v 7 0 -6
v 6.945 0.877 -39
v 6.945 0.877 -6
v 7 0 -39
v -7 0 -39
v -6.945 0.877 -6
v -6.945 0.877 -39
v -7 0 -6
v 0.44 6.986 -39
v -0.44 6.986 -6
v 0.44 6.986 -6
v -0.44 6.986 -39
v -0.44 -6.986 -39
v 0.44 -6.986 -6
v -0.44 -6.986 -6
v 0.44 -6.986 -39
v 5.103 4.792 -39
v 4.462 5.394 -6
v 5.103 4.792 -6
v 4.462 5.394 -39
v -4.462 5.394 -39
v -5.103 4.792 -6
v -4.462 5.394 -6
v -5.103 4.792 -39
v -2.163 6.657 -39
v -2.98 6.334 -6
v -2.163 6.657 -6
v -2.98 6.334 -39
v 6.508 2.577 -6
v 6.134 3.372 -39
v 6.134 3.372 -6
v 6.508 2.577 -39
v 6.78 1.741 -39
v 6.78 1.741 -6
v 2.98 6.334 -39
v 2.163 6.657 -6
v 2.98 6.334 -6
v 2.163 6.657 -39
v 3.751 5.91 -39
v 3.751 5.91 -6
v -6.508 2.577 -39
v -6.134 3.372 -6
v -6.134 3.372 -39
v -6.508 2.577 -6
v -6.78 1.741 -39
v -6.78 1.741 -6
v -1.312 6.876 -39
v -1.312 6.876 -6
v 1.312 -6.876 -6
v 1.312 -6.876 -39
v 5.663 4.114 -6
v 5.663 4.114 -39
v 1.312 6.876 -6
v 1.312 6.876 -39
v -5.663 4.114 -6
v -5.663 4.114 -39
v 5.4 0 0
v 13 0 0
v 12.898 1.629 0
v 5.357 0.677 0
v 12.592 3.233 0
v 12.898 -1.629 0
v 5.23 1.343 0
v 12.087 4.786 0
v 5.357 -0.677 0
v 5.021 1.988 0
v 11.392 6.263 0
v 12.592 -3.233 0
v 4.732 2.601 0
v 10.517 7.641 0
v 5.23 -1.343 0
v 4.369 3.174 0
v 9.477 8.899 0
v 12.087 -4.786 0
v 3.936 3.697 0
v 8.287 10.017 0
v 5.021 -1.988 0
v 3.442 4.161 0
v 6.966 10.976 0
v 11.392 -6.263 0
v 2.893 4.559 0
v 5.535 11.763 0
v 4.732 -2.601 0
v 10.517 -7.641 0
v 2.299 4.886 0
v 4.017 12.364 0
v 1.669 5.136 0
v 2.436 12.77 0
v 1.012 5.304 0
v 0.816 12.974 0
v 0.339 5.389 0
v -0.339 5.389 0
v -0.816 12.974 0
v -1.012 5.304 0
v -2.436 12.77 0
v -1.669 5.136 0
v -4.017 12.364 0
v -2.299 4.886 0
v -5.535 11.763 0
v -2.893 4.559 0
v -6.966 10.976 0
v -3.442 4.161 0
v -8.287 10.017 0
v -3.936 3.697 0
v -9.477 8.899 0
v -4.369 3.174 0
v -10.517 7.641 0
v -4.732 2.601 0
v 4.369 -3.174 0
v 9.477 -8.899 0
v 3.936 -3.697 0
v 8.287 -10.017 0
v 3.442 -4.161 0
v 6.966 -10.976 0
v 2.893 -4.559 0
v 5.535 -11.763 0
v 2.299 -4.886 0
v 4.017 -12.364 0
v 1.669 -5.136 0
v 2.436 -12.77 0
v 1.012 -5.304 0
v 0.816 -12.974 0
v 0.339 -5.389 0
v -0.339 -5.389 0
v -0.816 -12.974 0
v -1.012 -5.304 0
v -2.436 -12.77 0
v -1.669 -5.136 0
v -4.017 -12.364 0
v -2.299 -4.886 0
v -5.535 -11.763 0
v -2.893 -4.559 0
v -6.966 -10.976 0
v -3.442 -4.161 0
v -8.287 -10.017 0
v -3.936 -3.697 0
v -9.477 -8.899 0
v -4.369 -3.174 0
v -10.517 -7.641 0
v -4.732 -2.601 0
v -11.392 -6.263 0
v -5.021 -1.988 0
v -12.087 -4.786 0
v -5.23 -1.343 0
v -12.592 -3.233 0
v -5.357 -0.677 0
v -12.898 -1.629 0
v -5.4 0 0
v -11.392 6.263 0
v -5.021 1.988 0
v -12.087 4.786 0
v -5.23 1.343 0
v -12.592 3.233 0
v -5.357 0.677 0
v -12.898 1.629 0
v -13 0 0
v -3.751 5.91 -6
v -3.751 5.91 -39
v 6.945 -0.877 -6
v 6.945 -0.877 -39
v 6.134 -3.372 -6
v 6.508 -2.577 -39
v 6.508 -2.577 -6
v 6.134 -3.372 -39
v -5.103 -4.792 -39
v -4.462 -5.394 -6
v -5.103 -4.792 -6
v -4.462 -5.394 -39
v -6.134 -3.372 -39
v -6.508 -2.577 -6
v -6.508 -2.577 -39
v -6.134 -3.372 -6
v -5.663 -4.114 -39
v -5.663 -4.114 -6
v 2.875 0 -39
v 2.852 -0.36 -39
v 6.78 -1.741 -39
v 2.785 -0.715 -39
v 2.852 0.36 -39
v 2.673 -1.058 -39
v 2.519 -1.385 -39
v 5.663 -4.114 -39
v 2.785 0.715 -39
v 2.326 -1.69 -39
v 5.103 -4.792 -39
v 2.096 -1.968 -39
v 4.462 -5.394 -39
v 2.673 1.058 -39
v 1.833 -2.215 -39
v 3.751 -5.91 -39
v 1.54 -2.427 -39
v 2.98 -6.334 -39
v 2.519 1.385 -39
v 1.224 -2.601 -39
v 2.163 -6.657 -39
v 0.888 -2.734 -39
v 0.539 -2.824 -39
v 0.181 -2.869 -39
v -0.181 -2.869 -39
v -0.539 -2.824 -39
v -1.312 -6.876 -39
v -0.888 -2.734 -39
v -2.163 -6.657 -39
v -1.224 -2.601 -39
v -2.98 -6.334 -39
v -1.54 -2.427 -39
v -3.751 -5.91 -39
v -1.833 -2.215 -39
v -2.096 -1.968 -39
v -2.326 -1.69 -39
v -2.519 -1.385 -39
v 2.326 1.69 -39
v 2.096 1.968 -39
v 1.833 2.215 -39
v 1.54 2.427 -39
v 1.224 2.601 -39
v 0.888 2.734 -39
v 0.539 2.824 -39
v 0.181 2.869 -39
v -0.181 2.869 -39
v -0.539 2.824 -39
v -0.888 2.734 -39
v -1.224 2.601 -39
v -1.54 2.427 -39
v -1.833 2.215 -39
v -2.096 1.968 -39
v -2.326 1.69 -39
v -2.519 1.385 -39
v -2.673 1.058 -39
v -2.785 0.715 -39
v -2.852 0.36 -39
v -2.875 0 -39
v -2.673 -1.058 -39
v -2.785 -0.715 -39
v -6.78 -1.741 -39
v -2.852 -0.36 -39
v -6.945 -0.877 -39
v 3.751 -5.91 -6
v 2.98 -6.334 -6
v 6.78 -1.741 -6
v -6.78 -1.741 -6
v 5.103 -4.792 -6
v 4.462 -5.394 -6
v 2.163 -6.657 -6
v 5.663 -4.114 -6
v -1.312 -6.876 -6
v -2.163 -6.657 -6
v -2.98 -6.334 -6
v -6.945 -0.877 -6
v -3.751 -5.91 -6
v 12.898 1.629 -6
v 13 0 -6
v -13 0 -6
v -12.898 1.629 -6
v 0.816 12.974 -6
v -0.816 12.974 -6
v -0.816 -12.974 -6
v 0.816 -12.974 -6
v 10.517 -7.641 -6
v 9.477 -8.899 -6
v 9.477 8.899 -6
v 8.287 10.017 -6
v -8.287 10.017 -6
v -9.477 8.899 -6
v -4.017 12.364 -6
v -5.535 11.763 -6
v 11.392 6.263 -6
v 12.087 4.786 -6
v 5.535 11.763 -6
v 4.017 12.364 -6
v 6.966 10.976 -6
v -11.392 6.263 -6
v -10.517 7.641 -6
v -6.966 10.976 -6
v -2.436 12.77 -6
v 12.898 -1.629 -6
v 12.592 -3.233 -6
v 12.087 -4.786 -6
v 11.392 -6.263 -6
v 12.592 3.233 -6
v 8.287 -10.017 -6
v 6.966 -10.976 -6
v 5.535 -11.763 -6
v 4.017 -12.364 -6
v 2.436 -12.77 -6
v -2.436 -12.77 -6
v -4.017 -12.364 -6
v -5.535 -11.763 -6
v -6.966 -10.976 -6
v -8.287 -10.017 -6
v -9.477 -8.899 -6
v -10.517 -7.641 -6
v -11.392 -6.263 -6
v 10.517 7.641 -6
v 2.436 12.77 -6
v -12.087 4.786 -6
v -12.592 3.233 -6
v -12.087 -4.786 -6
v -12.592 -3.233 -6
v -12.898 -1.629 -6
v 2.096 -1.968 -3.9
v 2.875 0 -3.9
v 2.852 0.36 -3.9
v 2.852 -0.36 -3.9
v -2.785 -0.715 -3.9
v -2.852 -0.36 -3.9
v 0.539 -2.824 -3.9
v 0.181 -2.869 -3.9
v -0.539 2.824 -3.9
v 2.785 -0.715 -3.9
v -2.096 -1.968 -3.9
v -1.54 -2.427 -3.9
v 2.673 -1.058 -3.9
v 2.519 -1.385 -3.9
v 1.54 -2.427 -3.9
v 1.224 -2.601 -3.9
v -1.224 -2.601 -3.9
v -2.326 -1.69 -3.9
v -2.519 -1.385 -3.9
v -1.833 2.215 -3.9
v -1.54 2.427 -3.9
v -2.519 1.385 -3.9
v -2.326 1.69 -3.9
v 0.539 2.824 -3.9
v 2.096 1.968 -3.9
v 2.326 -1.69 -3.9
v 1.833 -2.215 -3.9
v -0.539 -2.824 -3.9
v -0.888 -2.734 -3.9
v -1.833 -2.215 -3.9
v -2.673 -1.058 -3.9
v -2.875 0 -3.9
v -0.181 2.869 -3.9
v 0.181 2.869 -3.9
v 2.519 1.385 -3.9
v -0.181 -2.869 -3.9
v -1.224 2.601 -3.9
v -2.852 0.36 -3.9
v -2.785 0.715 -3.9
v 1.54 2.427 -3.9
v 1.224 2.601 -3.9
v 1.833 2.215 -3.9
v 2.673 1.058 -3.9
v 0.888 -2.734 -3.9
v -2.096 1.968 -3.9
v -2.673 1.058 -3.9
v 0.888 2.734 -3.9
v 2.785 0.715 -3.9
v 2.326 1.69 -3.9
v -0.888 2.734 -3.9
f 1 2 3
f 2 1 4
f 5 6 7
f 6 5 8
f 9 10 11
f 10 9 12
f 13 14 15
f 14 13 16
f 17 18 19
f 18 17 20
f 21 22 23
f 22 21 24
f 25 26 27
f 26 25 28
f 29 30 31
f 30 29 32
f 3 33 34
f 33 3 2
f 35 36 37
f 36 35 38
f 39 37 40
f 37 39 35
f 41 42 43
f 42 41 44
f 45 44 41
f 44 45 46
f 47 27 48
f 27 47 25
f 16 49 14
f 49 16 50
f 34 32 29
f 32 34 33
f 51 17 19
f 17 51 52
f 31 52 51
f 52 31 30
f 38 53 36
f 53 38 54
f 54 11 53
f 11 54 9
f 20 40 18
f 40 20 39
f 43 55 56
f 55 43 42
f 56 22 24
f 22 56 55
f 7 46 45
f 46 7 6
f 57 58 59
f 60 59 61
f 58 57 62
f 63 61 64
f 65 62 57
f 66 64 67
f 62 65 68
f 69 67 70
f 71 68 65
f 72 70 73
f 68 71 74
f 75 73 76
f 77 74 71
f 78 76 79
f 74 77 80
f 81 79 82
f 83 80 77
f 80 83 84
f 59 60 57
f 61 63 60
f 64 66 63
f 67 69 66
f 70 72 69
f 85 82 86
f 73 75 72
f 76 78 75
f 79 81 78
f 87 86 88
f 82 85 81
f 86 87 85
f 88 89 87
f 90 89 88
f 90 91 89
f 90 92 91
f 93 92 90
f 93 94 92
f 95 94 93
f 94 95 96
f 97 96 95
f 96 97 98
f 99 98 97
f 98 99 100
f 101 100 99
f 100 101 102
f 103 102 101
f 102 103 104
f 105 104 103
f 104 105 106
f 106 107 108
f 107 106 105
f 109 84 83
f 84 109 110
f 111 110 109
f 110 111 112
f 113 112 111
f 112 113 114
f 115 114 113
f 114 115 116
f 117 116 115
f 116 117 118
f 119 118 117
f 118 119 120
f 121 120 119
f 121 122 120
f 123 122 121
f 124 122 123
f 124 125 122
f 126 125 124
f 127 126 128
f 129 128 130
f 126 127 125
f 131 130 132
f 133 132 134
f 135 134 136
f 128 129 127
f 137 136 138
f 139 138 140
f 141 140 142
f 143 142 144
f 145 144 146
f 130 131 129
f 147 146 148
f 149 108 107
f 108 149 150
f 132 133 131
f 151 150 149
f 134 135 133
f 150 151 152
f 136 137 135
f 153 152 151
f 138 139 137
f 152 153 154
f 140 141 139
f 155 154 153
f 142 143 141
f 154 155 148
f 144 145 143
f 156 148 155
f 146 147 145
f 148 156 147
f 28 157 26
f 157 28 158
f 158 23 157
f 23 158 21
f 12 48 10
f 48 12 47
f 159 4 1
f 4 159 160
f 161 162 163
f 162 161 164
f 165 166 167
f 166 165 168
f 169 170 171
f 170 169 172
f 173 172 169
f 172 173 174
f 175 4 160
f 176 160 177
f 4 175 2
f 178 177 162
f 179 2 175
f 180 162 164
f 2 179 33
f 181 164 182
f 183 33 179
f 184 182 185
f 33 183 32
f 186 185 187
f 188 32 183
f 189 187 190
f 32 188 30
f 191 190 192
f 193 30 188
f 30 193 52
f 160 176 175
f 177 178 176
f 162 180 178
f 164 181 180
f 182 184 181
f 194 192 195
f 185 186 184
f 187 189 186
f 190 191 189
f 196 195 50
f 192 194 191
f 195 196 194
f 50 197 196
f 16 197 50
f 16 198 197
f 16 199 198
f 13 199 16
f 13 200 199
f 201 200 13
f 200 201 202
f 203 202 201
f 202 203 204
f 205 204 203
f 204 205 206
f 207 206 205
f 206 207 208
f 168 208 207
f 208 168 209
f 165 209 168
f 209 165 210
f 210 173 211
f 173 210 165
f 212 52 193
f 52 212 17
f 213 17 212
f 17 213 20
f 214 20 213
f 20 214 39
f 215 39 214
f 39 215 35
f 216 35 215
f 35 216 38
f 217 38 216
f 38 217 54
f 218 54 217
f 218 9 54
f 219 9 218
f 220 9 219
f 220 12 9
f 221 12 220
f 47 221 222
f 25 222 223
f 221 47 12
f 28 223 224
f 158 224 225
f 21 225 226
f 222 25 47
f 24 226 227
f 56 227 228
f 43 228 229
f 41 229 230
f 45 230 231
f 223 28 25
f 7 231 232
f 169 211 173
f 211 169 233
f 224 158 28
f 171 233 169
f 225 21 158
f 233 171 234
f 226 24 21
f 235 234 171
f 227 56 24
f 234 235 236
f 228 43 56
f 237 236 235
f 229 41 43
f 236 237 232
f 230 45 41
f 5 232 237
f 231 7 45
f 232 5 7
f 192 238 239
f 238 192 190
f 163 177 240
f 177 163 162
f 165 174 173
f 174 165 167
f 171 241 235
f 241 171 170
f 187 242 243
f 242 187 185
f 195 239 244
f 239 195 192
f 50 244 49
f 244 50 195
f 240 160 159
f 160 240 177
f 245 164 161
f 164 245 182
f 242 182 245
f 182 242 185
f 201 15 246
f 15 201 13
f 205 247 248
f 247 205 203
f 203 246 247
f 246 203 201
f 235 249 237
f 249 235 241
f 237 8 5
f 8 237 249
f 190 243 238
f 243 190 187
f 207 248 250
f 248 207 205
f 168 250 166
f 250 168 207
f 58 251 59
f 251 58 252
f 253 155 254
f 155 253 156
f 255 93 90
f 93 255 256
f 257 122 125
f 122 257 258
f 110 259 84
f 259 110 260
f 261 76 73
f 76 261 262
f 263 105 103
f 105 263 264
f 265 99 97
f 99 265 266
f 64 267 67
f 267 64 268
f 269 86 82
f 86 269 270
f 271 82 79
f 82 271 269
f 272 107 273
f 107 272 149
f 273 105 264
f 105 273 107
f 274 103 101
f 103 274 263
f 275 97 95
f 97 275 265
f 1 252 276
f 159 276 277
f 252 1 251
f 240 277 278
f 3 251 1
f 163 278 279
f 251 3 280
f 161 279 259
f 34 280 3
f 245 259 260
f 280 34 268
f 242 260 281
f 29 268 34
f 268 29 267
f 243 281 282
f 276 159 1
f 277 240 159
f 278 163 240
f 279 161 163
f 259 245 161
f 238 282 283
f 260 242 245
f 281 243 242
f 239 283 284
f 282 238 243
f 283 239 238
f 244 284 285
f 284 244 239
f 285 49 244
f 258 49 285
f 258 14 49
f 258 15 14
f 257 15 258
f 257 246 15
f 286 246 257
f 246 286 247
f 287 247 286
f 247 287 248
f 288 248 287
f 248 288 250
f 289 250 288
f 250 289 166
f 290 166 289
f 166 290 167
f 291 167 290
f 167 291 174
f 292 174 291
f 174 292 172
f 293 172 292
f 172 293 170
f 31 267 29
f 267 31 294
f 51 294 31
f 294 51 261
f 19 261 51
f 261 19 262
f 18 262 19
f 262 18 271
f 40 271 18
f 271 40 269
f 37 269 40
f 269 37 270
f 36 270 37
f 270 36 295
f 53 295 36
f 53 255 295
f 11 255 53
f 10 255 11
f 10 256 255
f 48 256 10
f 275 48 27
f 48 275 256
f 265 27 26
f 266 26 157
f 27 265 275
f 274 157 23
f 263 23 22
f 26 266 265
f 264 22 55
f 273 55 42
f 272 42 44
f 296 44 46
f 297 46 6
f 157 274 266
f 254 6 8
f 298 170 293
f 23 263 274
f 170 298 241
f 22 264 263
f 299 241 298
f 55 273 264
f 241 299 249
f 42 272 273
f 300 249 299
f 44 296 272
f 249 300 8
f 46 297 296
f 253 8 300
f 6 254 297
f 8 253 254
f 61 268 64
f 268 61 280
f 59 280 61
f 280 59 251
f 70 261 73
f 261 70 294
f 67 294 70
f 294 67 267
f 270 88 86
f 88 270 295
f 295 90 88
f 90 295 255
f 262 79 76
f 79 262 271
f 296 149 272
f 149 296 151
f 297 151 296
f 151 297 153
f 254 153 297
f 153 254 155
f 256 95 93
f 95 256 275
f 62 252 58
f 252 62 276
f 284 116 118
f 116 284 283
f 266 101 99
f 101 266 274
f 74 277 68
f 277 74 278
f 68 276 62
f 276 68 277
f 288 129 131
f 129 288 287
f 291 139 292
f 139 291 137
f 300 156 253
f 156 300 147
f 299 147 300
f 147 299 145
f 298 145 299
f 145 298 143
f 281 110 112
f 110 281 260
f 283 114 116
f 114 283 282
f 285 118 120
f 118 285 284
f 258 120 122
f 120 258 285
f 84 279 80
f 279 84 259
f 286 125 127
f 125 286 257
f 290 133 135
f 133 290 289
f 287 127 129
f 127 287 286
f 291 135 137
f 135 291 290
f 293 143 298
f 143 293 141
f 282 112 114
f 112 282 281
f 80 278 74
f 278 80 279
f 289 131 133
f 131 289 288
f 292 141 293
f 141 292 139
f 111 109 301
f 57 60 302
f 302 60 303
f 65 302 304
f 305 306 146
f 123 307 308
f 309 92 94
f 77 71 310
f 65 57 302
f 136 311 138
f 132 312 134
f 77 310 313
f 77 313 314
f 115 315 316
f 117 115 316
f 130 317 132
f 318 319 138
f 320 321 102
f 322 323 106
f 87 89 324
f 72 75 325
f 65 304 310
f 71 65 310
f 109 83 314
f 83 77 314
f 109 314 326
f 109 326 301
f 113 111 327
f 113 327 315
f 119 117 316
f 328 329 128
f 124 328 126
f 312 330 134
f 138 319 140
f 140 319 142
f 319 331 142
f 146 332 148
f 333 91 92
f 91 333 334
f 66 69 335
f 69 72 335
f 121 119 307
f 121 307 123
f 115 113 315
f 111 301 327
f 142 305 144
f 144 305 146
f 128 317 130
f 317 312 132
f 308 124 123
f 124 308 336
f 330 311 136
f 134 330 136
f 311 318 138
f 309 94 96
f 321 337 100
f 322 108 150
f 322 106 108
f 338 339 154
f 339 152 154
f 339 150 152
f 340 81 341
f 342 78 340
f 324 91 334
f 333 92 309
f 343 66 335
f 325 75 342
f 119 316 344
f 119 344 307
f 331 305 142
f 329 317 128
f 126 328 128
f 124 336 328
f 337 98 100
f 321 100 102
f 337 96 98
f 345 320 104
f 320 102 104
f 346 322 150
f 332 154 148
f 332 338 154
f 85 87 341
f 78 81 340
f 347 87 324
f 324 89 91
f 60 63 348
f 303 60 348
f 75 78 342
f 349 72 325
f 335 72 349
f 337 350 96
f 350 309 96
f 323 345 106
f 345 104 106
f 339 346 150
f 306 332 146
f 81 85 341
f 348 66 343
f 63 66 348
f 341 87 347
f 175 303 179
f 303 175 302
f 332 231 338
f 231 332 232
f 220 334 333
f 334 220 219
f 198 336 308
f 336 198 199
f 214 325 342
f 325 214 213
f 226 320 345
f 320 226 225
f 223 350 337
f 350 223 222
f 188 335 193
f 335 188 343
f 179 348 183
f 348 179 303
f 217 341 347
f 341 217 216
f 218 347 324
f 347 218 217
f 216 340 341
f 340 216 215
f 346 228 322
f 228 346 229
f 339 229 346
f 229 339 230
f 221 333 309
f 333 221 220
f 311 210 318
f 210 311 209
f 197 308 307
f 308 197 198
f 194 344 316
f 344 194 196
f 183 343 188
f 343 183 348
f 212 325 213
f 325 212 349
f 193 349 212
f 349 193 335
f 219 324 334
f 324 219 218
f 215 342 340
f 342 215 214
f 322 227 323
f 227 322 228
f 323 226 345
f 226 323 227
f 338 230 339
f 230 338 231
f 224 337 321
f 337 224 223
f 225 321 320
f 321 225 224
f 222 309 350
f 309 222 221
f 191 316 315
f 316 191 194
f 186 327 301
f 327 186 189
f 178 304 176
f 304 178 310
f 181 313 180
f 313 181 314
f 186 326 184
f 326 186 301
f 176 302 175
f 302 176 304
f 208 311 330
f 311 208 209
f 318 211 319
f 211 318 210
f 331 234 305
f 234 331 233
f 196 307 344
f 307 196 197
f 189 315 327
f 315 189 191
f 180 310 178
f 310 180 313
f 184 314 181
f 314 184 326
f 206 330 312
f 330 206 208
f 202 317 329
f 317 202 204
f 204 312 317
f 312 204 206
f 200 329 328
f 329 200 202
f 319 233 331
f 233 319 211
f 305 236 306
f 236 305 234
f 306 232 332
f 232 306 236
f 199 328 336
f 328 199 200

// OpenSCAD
$fn = 50;


difference() {
	union() {
		translate(v = [0, 0, -39.0000000000]) {
			cylinder(h = 39, r = 7.0000000000);
		}
		translate(v = [0, 0, -6.0000000000]) {
			cylinder(h = 6, r = 13.0000000000);
		}
	}
	union() {
		translate(v = [0, 0, 0]) {
			rotate(a = [0, 0, 0]) {
				difference() {
					union() {
						#translate(v = [0, 0, -39.0000000000]) {
							cylinder(h = 39, r = 2.6000000000);
						}
						#translate(v = [0, 0, -3.9000000000]) {
							cylinder(h = 3.9000000000, r1 = 2.8750000000, r2 = 5.4000000000);
						}
						#translate(v = [0, 0, -39.0000000000]) {
							cylinder(h = 39, r = 2.8750000000);
						}
						#translate(v = [0, 0, -39.0000000000]) {
							cylinder(h = 39, r = 2.6000000000);
						}
					}
					union();
				}
			}
		}
	}
}
